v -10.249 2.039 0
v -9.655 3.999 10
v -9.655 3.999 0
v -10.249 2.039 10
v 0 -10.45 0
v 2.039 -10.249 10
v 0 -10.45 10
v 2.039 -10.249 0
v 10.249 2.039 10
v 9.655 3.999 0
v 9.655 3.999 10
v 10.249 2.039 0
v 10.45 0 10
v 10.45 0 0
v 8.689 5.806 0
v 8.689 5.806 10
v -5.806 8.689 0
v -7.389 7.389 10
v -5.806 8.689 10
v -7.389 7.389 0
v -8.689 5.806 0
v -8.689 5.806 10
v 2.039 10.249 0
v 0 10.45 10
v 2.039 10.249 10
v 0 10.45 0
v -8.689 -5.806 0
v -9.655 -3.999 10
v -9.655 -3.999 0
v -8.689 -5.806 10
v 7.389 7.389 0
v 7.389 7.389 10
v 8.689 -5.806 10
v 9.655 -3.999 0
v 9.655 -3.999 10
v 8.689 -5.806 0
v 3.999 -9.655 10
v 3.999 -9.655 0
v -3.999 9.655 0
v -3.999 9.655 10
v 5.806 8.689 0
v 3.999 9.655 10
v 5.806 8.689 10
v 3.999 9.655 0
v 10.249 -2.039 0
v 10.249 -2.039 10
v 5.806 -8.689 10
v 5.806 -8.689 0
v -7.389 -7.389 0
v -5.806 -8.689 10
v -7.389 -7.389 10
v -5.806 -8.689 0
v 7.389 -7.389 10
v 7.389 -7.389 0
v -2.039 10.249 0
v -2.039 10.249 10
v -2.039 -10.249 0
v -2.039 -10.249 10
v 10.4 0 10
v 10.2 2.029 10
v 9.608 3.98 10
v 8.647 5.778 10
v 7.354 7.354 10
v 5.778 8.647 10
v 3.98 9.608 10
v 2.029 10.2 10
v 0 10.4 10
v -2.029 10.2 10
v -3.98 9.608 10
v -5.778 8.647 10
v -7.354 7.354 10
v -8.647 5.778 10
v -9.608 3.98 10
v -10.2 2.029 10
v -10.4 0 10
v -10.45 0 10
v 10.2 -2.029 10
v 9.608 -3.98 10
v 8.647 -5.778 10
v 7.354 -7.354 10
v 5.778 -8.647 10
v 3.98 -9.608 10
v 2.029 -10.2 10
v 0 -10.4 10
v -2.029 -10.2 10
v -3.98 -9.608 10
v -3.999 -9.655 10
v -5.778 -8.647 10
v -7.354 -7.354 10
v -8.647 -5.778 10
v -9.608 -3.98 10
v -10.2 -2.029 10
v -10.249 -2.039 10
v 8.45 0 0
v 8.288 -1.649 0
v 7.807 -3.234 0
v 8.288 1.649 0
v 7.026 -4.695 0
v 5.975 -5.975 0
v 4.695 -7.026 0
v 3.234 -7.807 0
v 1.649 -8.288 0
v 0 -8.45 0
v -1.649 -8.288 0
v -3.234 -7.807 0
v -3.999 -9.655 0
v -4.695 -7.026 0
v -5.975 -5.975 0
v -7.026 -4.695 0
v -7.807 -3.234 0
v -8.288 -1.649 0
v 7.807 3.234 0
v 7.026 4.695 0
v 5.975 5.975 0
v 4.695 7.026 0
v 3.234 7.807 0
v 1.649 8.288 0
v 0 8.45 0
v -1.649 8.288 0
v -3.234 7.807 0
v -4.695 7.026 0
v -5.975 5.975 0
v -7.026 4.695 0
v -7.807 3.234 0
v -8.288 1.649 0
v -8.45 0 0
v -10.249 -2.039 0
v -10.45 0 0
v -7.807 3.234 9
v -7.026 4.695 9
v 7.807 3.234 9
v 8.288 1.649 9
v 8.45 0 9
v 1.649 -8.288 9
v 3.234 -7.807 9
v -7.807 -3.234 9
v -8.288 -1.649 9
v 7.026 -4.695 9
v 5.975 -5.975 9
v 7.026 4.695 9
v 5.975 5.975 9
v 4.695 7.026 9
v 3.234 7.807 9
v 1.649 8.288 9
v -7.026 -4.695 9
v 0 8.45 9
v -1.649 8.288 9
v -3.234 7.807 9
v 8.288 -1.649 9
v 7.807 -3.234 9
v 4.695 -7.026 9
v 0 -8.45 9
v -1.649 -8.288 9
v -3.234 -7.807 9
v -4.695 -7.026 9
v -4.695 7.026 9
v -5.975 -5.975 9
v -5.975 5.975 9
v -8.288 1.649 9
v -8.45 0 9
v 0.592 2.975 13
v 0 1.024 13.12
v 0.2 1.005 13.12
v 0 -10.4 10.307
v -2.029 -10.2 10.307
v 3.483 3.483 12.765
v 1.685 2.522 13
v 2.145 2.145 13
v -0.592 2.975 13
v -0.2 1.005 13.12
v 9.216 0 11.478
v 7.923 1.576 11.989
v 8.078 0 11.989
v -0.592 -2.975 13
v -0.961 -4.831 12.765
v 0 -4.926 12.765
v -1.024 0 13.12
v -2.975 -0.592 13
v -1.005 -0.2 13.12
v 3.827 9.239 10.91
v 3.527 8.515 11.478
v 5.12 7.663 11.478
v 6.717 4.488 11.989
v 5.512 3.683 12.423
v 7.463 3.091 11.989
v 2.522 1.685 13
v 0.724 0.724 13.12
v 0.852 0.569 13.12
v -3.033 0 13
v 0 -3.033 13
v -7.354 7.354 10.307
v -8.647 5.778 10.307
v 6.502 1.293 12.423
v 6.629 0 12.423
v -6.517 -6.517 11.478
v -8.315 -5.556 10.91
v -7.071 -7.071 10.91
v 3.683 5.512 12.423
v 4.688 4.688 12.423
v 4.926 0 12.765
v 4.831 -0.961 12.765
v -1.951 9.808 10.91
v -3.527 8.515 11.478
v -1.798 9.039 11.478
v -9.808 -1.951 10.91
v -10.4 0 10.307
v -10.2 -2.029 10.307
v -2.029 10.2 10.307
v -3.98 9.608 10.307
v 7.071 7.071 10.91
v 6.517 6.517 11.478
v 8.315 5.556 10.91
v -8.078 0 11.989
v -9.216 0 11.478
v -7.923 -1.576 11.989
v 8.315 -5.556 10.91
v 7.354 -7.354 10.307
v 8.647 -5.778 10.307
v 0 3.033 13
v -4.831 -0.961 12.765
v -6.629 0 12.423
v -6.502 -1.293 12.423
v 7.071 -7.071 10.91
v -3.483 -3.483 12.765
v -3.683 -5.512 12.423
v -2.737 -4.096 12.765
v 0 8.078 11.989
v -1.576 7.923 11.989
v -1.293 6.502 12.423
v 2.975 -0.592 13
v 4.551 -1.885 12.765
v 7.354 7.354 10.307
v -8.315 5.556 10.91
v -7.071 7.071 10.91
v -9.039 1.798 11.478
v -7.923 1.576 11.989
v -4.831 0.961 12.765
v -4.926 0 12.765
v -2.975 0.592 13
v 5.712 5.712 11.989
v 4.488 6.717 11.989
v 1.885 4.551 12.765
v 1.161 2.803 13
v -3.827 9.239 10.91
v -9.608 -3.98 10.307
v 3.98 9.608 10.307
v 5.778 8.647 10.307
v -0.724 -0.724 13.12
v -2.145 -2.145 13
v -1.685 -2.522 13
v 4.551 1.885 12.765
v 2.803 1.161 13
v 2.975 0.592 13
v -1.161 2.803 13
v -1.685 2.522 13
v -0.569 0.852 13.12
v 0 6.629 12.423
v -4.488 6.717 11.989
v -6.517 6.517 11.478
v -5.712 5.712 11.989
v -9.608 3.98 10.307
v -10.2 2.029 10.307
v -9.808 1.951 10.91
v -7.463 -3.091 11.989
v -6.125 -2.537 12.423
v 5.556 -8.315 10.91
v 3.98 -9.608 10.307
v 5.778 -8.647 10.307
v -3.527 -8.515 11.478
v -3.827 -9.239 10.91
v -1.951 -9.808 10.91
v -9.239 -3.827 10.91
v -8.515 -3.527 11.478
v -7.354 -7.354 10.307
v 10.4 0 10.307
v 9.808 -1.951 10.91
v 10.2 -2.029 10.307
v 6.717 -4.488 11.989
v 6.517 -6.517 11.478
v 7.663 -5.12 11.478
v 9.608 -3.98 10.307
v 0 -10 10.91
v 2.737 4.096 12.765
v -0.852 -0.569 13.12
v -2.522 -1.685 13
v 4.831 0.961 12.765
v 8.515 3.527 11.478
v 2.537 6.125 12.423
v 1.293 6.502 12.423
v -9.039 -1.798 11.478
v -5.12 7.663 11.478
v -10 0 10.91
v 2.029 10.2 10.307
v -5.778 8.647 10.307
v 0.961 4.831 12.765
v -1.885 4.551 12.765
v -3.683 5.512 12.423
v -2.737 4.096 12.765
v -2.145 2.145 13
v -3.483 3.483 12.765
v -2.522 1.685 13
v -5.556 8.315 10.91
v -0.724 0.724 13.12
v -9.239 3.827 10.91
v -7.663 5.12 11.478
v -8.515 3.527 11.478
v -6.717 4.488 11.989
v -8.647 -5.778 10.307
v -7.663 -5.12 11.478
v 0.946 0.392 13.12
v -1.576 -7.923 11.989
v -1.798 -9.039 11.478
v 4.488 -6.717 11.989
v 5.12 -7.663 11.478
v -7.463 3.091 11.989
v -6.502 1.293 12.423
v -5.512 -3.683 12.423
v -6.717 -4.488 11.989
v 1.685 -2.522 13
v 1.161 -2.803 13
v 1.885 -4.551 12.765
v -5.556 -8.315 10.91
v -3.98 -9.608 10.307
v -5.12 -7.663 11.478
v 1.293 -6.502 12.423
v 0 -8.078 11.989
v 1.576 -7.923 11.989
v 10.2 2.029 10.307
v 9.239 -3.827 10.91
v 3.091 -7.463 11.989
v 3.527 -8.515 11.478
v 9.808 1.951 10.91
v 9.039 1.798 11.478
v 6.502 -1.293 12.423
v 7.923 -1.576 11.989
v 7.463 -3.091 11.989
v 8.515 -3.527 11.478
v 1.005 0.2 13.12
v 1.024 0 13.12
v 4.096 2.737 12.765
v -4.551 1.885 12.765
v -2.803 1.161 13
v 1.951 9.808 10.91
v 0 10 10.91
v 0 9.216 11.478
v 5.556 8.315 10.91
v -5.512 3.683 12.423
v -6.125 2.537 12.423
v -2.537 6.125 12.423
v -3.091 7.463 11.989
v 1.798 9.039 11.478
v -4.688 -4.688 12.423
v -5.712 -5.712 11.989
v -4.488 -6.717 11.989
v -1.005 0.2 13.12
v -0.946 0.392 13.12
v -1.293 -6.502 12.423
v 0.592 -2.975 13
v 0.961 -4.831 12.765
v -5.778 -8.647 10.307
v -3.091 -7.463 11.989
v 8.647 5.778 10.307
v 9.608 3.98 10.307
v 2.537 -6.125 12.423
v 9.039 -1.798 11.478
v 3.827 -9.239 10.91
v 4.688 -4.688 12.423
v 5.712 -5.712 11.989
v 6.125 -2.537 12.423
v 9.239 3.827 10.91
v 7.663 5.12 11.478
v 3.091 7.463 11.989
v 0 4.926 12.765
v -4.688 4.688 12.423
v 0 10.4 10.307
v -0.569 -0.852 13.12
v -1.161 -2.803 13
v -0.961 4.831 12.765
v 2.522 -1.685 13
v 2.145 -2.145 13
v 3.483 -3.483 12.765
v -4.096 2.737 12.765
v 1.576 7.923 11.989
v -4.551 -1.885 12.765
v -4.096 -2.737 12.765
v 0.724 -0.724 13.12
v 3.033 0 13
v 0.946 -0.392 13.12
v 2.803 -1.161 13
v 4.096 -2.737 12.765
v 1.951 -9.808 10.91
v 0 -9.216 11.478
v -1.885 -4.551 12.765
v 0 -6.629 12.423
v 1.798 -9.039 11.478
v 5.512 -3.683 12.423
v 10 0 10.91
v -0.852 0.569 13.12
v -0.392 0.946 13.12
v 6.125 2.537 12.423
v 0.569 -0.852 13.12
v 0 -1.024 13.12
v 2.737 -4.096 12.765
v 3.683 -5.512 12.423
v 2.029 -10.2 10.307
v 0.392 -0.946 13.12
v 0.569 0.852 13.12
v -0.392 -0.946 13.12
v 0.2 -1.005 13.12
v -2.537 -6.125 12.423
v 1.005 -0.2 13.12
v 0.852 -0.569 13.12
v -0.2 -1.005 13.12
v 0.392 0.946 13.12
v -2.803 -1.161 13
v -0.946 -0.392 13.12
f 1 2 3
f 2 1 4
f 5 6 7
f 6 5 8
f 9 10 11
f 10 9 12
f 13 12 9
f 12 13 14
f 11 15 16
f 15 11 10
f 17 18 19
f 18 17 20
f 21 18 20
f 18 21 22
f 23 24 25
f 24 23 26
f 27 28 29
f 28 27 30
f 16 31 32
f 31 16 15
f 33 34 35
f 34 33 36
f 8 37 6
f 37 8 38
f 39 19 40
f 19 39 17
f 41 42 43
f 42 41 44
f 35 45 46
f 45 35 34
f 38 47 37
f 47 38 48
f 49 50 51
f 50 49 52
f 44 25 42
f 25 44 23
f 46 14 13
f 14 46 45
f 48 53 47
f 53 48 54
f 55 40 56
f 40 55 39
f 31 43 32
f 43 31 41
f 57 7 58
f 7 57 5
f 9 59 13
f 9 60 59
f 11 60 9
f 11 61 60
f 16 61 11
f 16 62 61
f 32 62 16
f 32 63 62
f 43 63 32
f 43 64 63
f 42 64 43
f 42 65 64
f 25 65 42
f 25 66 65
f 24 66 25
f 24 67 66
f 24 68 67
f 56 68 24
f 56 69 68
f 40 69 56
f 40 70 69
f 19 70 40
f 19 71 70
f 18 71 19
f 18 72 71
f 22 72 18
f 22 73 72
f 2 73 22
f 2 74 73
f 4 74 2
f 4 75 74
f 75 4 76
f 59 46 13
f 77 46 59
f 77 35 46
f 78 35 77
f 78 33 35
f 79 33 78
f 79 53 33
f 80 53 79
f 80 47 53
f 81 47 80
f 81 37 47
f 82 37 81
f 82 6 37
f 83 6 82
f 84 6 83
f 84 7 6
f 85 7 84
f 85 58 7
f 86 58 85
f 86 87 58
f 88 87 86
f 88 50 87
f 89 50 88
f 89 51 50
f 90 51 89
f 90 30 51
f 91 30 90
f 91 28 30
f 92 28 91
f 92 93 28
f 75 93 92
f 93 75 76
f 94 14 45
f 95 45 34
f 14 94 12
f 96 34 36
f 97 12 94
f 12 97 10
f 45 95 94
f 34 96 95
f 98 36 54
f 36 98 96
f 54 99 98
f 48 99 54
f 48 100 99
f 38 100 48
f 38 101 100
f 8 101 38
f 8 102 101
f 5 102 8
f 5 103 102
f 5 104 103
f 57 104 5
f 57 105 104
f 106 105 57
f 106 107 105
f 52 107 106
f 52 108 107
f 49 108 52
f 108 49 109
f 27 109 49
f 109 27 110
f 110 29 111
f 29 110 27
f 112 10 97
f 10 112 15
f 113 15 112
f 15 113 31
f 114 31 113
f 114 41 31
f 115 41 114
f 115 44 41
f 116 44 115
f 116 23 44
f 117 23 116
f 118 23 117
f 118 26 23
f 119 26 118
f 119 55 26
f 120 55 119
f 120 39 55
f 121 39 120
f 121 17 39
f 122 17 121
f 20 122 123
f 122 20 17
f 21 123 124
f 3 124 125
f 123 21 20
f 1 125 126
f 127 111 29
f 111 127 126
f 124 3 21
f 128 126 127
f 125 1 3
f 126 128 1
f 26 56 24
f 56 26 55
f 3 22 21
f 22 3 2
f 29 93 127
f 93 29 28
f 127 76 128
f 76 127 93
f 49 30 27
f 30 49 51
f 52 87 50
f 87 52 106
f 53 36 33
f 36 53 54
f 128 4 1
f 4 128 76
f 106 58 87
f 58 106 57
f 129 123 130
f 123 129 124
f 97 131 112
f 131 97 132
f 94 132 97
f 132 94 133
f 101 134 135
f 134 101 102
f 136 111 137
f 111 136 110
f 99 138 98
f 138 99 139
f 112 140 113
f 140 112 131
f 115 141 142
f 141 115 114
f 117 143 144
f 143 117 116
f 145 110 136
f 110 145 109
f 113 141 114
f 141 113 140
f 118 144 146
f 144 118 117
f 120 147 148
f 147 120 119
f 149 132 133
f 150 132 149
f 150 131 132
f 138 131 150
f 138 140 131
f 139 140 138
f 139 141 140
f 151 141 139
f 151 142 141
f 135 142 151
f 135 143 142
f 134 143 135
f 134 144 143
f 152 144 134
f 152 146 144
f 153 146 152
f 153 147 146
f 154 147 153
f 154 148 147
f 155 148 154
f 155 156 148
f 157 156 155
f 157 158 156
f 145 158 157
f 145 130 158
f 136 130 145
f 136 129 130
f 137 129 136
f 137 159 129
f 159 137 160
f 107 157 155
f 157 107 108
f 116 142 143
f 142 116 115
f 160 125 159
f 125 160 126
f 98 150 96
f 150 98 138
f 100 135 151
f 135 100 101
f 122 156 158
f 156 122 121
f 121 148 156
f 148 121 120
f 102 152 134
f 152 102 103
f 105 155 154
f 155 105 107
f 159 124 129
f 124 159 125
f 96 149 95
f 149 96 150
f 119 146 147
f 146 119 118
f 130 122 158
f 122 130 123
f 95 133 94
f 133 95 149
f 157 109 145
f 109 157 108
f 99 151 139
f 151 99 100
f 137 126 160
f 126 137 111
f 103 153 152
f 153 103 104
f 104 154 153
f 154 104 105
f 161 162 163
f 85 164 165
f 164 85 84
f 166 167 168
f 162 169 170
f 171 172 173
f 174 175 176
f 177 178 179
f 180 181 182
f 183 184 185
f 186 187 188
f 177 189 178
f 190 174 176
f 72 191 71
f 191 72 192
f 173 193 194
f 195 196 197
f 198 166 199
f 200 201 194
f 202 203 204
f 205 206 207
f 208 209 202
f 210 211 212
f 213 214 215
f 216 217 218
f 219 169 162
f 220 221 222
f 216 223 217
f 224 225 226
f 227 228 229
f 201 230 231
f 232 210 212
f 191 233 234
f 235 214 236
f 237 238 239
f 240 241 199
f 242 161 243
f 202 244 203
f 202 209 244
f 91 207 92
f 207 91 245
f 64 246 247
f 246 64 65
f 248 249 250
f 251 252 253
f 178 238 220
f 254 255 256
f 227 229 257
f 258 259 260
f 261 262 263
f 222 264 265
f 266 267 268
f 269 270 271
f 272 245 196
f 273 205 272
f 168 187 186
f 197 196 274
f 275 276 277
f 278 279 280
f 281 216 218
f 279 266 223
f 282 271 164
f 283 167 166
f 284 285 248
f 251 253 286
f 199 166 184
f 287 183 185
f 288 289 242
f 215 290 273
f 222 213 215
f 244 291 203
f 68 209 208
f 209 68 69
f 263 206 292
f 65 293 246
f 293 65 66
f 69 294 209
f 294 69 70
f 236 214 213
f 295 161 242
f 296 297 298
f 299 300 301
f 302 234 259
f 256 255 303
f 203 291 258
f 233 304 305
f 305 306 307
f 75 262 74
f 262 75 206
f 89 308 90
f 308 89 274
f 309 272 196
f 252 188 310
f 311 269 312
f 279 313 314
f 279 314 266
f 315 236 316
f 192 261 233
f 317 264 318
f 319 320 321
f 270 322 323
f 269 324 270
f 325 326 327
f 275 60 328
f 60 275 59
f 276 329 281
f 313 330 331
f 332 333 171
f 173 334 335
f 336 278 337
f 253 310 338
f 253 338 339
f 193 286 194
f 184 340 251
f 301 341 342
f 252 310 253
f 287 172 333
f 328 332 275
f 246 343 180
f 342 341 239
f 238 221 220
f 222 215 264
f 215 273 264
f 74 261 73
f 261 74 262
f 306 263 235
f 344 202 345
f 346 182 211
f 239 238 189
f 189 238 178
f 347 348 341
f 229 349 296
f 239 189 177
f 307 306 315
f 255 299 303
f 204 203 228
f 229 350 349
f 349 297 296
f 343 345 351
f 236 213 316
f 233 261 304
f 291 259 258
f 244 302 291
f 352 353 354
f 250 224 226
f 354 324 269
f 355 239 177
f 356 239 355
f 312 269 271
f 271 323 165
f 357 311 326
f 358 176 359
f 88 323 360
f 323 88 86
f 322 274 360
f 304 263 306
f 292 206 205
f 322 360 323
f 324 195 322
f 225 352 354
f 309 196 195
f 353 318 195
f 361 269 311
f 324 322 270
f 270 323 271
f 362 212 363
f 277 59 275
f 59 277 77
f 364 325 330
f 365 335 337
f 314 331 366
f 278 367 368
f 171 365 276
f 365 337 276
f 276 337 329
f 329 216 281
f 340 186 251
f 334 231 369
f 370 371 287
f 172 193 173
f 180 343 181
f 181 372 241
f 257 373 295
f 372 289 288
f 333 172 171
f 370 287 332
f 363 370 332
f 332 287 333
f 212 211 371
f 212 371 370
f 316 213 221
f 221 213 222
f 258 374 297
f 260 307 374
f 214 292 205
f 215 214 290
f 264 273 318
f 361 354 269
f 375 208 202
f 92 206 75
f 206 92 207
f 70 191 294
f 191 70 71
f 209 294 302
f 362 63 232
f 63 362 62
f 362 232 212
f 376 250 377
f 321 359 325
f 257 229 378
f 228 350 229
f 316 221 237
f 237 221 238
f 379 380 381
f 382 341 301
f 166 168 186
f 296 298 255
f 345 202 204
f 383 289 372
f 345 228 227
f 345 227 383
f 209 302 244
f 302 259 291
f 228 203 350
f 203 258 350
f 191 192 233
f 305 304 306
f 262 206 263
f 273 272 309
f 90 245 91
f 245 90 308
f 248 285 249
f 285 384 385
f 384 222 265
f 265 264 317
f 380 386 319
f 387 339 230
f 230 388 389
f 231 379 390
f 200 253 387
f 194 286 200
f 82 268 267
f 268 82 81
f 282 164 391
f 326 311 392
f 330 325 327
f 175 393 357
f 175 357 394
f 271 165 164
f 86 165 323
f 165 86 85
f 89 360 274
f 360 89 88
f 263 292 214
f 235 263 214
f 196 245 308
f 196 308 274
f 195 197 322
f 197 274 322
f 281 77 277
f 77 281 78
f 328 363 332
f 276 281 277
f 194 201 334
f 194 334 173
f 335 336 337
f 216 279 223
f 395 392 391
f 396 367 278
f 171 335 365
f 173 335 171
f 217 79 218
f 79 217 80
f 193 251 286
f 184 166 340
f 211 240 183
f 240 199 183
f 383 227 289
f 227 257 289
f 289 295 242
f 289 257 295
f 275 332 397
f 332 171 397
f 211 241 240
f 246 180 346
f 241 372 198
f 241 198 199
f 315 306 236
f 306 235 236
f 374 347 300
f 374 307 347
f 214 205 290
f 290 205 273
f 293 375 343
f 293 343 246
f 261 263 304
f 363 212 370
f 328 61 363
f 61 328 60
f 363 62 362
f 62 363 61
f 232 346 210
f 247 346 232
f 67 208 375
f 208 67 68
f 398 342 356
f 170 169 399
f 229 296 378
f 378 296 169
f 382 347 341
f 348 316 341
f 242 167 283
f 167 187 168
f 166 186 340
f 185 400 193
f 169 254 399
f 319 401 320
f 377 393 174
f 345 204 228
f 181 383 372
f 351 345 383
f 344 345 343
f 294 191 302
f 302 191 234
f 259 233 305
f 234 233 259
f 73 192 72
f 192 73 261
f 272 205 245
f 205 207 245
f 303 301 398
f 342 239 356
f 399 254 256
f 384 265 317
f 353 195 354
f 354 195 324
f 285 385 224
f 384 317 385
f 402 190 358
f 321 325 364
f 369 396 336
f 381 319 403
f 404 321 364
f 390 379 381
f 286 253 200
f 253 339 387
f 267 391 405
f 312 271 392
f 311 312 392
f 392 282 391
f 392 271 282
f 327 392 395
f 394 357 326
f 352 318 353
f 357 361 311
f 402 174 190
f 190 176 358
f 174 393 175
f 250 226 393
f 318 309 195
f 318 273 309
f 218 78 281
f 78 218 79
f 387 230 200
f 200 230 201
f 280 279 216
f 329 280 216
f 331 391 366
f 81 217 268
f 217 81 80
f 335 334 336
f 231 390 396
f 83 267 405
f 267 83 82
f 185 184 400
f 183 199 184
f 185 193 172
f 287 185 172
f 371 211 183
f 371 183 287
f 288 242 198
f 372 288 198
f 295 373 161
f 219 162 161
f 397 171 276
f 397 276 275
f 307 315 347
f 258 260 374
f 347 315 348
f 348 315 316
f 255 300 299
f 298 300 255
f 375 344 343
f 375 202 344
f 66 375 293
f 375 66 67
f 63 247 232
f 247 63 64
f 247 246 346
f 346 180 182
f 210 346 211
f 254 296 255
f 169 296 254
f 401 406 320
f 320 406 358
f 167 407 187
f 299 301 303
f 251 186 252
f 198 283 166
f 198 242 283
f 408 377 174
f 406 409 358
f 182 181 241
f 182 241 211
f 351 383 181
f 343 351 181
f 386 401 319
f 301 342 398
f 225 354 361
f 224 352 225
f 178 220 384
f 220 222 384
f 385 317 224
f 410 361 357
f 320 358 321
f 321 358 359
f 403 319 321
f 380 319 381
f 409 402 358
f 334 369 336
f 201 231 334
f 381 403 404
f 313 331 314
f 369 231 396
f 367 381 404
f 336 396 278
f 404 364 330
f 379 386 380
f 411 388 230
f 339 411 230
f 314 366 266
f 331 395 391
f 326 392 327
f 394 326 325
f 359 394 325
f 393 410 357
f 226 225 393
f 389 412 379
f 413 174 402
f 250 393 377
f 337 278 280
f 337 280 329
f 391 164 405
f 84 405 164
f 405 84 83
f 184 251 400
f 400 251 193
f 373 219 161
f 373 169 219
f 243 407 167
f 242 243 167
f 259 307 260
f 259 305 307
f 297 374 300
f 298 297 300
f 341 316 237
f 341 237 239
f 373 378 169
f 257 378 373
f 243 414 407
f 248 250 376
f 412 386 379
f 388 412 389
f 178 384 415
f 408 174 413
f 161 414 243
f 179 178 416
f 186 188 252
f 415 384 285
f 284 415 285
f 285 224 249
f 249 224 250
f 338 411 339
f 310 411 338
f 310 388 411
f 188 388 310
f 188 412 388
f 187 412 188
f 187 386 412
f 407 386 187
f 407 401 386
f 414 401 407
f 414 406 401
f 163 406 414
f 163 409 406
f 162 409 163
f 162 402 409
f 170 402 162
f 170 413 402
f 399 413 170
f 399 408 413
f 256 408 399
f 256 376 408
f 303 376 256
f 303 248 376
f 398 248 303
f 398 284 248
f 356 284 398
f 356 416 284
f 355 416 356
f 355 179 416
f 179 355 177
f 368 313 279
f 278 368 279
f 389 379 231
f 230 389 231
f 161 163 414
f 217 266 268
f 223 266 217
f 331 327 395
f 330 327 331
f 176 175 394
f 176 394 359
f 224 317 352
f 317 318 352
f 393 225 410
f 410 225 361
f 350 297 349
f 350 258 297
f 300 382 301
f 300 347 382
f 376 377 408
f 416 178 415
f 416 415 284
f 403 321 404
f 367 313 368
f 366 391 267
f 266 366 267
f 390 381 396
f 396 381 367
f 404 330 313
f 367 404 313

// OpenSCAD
$fn = 32;

//Pipe Support Section
dIntClearance = 0.5;
dPipe = 16.4 ; // 16mm alunminum external diameter 
hCap = 10; //height of the pipe fit
wallCap = 2; // part wall
hTop = 2;    // top height


dIntPipe = dPipe + dIntClearance;
dExtCap = dIntPipe + (wallCap * 2);


translate([0,0,0])
    cap();



module cap(){
    difference(){
        cylinder(r=(dExtCap/2), h= hCap);
        
        translate([0,0,-1])
        cylinder(r=dIntPipe/2, h= hCap);
        
        *translate([0,0, -4 ])
        cylinder(r=1, h=20);
    }

    translate([0,0, hCap])
    difference(){
        scale([1, 1, 0.3])
        sphere(r=dExtCap/2);
        
        translate([-50,-50, -dExtCap/4 ])
        cube([100,100,dExtCap/4]);

    }
}
